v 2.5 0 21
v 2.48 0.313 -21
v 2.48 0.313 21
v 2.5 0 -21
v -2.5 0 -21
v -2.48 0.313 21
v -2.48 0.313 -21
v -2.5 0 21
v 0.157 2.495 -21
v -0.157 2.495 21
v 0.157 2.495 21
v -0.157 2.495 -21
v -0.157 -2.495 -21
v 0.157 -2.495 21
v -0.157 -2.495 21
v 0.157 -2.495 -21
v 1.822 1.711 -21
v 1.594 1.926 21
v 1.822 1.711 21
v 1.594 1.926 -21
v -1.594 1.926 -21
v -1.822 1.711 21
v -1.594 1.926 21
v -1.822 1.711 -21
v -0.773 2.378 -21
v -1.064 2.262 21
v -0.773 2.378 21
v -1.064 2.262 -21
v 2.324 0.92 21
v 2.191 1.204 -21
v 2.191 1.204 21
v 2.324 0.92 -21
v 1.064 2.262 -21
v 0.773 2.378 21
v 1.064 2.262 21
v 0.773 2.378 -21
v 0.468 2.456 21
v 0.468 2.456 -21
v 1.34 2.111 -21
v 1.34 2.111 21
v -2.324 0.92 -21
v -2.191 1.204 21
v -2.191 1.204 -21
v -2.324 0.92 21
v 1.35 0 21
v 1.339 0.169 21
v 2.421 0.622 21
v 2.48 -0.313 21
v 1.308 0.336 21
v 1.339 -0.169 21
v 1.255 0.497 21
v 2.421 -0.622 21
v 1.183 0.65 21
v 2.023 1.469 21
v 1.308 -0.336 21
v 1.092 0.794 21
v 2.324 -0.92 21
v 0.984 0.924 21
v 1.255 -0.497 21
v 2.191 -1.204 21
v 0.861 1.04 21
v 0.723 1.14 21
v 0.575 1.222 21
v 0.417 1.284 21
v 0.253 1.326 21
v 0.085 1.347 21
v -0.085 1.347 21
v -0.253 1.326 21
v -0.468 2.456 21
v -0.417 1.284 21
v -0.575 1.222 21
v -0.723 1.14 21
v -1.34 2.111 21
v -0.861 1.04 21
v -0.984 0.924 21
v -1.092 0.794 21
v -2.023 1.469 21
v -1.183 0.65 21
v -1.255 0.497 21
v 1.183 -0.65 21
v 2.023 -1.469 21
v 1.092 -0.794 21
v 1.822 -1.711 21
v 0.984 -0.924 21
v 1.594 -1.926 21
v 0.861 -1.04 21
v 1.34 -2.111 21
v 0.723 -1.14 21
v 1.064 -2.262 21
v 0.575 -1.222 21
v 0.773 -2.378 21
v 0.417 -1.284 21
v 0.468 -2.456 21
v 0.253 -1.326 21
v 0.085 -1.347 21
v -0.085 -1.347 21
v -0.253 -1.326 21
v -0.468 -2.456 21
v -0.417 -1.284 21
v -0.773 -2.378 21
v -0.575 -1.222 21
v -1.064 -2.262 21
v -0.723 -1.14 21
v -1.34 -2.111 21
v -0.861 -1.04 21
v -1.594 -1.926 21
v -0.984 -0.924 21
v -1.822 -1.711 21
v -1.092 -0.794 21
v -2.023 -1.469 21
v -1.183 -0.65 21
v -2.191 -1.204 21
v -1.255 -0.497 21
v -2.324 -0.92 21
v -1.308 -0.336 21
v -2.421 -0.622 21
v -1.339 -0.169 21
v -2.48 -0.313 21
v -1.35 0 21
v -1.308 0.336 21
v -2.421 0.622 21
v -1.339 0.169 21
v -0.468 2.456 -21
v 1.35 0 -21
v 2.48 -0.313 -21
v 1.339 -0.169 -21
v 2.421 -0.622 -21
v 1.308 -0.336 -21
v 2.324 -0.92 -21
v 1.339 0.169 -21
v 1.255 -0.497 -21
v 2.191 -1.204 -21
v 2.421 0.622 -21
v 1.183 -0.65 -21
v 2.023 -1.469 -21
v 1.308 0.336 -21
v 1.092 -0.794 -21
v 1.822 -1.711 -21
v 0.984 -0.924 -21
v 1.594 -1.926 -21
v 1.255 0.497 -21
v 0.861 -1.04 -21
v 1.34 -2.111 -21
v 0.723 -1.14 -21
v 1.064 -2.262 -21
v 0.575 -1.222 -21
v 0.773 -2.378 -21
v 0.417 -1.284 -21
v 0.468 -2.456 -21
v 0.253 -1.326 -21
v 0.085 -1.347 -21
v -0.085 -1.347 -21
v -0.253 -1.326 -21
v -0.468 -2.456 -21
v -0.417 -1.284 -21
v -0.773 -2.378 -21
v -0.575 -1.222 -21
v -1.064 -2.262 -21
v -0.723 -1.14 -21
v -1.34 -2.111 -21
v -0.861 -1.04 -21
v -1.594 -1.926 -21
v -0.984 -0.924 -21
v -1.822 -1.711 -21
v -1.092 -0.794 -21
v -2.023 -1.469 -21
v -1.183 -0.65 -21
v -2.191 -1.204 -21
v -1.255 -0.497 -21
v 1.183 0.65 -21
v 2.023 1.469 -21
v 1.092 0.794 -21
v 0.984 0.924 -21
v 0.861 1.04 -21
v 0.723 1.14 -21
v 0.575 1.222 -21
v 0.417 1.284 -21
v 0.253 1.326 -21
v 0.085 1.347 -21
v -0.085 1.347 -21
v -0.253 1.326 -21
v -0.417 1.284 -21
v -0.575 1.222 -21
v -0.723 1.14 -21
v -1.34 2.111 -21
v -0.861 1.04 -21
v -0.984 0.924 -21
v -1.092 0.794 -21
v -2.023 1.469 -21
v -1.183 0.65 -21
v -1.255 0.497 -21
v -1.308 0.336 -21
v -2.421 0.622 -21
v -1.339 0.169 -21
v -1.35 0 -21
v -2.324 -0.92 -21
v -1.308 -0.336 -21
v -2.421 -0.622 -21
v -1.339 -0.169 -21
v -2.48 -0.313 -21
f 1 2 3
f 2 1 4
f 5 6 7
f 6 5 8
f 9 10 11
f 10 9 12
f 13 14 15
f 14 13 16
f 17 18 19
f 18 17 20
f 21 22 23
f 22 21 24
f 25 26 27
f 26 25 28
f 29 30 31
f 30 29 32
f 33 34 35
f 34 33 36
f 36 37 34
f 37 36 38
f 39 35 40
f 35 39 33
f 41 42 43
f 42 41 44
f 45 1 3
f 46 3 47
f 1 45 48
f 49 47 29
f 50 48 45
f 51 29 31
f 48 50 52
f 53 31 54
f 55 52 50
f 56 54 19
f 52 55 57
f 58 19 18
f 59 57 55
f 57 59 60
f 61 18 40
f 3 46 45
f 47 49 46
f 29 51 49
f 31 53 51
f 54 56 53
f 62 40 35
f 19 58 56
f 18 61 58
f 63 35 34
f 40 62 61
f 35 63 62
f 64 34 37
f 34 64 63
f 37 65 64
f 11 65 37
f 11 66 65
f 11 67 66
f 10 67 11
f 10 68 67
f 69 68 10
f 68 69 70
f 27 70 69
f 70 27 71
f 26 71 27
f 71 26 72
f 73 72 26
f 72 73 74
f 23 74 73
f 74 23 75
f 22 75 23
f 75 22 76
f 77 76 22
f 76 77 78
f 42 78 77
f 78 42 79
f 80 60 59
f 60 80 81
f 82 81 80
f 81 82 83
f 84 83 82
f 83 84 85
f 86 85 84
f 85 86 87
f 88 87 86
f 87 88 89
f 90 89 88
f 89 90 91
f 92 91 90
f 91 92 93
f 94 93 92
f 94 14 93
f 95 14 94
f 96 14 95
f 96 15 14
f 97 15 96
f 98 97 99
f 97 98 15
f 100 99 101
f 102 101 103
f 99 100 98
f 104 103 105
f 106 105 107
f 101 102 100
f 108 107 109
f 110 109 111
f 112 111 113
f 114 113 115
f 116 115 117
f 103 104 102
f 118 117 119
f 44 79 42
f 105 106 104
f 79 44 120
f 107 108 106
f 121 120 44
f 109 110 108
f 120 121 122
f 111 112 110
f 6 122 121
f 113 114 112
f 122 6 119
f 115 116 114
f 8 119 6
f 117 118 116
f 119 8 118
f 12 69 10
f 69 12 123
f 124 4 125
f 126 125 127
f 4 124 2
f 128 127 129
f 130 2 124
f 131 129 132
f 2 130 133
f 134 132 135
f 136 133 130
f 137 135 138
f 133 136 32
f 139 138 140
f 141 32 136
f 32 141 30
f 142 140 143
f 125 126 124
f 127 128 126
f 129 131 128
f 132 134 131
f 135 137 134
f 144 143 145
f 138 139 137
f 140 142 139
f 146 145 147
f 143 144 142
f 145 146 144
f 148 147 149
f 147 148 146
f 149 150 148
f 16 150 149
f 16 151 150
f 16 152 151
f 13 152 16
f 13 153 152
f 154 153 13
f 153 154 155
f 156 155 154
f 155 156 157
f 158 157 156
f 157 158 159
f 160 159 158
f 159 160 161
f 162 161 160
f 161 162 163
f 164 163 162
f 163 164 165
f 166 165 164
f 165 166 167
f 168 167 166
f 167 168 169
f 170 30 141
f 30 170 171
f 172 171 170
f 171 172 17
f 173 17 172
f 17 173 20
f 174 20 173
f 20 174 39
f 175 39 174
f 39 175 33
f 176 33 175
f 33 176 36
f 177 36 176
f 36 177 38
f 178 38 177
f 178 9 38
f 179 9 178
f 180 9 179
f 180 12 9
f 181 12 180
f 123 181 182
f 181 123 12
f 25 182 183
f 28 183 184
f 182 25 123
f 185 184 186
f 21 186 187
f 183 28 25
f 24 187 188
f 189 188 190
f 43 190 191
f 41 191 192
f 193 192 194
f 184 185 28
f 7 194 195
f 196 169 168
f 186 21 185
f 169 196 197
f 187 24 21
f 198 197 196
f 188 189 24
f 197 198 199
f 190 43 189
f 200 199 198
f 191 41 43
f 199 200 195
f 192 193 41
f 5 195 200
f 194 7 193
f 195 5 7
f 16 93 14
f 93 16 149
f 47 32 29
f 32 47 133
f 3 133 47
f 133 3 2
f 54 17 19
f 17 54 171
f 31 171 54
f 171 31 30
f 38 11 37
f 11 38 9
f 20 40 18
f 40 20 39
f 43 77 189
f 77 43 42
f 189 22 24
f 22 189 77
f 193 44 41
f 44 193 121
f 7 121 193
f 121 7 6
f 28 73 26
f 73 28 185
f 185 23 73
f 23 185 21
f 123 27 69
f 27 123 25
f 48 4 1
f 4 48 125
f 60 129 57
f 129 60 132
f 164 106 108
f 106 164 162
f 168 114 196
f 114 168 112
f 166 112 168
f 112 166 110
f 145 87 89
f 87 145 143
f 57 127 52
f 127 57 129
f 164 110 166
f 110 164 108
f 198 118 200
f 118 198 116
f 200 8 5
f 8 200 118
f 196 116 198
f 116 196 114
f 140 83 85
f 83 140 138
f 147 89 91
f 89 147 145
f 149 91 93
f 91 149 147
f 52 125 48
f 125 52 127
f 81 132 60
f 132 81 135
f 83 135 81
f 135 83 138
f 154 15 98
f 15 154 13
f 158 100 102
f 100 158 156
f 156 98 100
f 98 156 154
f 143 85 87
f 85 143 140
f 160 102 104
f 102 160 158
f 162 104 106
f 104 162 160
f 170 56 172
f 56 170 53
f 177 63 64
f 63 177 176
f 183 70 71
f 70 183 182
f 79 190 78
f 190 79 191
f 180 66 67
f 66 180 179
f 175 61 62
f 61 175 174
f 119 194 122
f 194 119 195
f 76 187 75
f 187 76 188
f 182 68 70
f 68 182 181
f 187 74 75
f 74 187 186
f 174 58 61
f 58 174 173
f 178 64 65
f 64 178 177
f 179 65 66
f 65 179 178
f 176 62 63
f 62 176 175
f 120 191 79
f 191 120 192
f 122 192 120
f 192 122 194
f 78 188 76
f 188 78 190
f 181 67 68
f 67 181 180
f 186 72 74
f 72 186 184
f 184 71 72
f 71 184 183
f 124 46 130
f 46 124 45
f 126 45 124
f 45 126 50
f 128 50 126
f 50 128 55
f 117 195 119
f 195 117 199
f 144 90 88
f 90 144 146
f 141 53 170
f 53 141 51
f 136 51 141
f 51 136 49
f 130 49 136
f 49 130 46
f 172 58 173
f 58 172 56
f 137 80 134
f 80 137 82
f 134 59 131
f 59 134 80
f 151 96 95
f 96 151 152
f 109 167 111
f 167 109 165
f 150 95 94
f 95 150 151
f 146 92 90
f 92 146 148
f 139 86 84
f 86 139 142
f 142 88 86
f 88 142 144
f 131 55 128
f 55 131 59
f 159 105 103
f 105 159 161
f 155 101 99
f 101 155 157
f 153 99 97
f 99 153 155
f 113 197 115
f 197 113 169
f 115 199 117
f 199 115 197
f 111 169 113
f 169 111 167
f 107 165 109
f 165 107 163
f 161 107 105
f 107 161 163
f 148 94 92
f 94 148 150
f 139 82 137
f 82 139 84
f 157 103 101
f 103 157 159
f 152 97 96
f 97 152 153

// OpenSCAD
$fn = 50;


difference() {
	union() {
		translate(v = [0, 0, -21.0000000000]) {
			cylinder(h = 42, r = 2.5000000000);
		}
	}
	union() {
		translate(v = [0, 0, -100.0000000000]) {
			cylinder(h = 200, r = 1.3500000000);
		}
	}
}
